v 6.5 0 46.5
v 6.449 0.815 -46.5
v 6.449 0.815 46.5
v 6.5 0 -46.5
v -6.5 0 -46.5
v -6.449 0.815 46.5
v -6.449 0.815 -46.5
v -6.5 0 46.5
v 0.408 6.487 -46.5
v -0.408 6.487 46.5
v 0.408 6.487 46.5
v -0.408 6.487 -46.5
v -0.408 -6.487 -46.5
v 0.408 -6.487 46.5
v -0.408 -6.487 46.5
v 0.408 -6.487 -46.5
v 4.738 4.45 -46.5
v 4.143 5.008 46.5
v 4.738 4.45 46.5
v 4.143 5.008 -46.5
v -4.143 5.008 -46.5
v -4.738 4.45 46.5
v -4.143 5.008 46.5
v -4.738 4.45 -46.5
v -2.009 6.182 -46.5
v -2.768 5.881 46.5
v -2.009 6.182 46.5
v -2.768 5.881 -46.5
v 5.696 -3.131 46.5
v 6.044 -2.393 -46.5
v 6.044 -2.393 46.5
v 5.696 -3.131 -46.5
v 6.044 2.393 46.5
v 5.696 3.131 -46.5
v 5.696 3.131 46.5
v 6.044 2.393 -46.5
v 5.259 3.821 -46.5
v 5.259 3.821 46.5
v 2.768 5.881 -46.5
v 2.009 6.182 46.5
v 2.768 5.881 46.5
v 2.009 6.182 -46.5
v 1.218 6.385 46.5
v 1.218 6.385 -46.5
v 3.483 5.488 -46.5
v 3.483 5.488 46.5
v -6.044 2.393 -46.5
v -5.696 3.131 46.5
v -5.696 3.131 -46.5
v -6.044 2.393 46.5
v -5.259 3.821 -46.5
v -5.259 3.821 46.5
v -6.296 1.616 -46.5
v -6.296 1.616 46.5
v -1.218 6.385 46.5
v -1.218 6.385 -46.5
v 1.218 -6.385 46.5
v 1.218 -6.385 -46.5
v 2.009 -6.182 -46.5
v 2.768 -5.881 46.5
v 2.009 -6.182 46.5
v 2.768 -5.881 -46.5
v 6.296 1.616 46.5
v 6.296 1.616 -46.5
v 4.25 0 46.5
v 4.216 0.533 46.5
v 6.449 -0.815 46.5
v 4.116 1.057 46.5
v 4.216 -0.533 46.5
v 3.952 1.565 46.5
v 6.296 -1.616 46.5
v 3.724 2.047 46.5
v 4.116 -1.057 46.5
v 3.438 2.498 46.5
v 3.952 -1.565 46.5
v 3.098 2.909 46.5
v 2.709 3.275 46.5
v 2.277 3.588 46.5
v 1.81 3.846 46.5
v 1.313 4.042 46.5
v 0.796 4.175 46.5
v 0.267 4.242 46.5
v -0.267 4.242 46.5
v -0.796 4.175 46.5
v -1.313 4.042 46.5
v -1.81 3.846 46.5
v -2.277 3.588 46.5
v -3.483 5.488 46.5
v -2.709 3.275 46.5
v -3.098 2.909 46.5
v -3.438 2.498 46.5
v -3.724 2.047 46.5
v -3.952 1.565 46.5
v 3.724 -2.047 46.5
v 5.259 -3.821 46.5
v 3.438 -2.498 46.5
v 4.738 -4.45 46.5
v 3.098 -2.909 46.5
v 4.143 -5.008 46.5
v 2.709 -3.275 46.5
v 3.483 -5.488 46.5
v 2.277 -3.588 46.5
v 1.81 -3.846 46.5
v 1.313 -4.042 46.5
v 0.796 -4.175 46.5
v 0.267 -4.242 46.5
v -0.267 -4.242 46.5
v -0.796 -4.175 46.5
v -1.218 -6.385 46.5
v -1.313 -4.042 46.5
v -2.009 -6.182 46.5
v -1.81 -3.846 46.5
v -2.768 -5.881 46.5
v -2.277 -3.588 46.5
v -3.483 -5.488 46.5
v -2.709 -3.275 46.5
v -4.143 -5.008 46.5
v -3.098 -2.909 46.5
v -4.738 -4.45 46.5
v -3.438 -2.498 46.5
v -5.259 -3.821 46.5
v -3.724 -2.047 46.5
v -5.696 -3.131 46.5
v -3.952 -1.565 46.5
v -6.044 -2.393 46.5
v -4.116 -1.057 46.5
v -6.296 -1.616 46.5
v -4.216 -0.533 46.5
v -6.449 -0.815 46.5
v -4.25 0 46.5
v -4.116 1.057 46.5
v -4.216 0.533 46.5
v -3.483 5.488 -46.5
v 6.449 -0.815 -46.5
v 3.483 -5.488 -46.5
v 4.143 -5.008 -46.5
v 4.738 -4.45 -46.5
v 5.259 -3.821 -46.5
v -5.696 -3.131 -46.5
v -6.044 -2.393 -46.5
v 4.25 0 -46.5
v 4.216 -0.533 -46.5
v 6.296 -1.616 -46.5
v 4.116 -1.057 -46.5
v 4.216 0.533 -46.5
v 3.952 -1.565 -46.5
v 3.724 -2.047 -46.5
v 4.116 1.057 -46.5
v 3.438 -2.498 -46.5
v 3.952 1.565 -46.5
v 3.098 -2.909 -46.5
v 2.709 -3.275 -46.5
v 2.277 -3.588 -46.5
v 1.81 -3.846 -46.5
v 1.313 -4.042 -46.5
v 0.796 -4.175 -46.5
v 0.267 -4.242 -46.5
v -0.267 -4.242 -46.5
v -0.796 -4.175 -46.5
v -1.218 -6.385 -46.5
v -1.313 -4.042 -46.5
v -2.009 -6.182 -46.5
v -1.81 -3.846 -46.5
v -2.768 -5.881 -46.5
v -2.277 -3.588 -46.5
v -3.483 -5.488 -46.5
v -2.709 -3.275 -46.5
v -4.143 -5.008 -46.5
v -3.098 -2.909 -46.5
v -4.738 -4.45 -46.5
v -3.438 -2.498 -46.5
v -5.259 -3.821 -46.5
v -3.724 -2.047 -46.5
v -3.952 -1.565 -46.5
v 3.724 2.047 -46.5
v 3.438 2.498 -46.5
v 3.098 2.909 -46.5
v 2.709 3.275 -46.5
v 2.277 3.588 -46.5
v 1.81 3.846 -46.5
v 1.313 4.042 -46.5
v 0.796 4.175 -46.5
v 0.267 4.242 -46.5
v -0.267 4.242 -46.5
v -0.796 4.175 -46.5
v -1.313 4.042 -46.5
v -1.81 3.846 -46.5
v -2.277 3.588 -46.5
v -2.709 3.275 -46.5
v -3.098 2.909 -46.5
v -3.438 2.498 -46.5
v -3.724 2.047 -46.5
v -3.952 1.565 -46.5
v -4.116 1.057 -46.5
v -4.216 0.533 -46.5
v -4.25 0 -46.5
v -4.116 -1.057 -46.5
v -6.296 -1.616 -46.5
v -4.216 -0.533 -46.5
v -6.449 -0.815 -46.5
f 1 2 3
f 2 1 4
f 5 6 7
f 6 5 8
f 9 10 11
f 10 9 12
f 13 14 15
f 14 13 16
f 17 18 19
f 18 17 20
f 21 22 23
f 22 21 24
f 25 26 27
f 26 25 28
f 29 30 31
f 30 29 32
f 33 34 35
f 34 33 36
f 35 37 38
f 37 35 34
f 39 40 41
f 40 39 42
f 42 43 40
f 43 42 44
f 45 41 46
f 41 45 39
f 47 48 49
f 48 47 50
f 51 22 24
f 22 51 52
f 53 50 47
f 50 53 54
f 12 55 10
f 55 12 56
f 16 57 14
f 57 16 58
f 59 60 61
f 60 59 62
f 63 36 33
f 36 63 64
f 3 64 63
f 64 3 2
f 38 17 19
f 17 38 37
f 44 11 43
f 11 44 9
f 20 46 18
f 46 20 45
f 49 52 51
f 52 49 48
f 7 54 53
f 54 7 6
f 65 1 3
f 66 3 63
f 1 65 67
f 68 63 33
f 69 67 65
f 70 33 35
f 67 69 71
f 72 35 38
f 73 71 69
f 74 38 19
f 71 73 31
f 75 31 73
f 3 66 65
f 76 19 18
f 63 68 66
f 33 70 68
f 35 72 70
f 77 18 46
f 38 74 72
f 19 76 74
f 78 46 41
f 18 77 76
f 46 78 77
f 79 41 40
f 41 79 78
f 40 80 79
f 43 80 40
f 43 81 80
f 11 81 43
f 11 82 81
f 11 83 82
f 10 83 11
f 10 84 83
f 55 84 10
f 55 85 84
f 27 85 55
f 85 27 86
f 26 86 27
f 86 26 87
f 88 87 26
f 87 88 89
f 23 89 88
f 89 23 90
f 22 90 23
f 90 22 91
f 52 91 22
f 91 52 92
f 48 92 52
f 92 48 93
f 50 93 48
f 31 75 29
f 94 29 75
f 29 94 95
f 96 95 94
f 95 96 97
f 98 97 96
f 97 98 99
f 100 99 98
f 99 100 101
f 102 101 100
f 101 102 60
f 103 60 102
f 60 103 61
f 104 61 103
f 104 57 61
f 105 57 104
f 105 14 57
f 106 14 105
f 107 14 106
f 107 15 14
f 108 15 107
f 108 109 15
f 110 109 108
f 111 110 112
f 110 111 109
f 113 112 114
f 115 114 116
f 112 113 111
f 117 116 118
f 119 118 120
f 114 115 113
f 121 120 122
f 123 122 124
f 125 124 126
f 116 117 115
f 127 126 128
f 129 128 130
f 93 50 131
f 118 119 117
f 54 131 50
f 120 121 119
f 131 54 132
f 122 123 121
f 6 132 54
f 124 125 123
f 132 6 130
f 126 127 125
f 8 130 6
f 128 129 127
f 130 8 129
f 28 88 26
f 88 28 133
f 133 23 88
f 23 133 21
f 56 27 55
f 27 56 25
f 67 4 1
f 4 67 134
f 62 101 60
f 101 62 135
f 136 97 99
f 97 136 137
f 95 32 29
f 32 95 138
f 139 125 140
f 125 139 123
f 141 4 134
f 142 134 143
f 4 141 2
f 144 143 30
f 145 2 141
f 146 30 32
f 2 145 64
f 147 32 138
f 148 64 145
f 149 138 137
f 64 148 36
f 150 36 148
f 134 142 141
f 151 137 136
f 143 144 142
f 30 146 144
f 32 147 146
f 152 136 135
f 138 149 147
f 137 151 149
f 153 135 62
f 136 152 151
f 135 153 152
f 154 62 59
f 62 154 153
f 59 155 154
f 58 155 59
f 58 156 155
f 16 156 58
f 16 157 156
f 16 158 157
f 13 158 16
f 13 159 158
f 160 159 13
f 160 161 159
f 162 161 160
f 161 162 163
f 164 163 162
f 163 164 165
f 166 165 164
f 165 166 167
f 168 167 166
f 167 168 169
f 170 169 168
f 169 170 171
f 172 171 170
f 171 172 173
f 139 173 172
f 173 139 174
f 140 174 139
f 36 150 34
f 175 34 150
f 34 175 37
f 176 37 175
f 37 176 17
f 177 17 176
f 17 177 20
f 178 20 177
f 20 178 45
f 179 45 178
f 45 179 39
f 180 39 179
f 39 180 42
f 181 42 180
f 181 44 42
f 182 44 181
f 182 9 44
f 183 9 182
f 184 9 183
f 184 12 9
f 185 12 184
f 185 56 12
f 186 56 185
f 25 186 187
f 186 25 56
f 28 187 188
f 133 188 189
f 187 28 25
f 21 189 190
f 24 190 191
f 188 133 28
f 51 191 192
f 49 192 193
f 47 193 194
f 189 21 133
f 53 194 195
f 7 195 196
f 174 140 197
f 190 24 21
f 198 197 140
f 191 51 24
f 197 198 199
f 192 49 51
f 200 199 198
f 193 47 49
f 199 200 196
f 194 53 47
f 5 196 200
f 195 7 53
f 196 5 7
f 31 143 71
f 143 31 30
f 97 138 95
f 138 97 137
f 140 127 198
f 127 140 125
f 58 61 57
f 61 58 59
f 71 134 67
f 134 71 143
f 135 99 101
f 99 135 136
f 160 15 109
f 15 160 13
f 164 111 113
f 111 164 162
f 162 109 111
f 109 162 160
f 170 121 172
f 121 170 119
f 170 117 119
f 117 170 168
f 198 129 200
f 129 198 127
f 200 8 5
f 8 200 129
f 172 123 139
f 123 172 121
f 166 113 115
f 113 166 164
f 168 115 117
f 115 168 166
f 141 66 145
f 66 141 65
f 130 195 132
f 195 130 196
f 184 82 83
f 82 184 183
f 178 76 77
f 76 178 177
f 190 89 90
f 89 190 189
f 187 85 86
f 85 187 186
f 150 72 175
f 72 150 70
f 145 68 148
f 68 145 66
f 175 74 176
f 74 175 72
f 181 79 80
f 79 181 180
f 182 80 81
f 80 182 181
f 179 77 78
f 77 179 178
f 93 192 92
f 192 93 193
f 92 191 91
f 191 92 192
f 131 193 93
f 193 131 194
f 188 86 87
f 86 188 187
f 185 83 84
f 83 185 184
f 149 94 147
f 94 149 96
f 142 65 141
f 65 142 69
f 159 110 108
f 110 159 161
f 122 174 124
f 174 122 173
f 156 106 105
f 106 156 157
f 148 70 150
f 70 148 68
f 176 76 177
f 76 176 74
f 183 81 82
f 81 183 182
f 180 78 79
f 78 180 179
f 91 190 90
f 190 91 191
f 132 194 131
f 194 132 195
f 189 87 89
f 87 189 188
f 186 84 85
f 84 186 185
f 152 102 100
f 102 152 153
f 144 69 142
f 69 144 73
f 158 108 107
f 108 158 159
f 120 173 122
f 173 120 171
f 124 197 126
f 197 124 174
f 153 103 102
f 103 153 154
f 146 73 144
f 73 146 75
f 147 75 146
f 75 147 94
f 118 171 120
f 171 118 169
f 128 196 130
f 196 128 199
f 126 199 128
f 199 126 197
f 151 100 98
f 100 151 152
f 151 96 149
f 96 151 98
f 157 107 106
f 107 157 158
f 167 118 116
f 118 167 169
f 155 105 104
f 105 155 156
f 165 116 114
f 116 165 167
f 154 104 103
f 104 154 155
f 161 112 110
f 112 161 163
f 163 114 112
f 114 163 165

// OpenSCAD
$fn = 50;


difference() {
	union() {
		translate(v = [0, 0, -46.5000000000]) {
			cylinder(h = 93, r = 6.5000000000);
		}
	}
	union() {
		translate(v = [0, 0, -100.0000000000]) {
			cylinder(h = 200, r = 4.2500000000);
		}
	}
}
